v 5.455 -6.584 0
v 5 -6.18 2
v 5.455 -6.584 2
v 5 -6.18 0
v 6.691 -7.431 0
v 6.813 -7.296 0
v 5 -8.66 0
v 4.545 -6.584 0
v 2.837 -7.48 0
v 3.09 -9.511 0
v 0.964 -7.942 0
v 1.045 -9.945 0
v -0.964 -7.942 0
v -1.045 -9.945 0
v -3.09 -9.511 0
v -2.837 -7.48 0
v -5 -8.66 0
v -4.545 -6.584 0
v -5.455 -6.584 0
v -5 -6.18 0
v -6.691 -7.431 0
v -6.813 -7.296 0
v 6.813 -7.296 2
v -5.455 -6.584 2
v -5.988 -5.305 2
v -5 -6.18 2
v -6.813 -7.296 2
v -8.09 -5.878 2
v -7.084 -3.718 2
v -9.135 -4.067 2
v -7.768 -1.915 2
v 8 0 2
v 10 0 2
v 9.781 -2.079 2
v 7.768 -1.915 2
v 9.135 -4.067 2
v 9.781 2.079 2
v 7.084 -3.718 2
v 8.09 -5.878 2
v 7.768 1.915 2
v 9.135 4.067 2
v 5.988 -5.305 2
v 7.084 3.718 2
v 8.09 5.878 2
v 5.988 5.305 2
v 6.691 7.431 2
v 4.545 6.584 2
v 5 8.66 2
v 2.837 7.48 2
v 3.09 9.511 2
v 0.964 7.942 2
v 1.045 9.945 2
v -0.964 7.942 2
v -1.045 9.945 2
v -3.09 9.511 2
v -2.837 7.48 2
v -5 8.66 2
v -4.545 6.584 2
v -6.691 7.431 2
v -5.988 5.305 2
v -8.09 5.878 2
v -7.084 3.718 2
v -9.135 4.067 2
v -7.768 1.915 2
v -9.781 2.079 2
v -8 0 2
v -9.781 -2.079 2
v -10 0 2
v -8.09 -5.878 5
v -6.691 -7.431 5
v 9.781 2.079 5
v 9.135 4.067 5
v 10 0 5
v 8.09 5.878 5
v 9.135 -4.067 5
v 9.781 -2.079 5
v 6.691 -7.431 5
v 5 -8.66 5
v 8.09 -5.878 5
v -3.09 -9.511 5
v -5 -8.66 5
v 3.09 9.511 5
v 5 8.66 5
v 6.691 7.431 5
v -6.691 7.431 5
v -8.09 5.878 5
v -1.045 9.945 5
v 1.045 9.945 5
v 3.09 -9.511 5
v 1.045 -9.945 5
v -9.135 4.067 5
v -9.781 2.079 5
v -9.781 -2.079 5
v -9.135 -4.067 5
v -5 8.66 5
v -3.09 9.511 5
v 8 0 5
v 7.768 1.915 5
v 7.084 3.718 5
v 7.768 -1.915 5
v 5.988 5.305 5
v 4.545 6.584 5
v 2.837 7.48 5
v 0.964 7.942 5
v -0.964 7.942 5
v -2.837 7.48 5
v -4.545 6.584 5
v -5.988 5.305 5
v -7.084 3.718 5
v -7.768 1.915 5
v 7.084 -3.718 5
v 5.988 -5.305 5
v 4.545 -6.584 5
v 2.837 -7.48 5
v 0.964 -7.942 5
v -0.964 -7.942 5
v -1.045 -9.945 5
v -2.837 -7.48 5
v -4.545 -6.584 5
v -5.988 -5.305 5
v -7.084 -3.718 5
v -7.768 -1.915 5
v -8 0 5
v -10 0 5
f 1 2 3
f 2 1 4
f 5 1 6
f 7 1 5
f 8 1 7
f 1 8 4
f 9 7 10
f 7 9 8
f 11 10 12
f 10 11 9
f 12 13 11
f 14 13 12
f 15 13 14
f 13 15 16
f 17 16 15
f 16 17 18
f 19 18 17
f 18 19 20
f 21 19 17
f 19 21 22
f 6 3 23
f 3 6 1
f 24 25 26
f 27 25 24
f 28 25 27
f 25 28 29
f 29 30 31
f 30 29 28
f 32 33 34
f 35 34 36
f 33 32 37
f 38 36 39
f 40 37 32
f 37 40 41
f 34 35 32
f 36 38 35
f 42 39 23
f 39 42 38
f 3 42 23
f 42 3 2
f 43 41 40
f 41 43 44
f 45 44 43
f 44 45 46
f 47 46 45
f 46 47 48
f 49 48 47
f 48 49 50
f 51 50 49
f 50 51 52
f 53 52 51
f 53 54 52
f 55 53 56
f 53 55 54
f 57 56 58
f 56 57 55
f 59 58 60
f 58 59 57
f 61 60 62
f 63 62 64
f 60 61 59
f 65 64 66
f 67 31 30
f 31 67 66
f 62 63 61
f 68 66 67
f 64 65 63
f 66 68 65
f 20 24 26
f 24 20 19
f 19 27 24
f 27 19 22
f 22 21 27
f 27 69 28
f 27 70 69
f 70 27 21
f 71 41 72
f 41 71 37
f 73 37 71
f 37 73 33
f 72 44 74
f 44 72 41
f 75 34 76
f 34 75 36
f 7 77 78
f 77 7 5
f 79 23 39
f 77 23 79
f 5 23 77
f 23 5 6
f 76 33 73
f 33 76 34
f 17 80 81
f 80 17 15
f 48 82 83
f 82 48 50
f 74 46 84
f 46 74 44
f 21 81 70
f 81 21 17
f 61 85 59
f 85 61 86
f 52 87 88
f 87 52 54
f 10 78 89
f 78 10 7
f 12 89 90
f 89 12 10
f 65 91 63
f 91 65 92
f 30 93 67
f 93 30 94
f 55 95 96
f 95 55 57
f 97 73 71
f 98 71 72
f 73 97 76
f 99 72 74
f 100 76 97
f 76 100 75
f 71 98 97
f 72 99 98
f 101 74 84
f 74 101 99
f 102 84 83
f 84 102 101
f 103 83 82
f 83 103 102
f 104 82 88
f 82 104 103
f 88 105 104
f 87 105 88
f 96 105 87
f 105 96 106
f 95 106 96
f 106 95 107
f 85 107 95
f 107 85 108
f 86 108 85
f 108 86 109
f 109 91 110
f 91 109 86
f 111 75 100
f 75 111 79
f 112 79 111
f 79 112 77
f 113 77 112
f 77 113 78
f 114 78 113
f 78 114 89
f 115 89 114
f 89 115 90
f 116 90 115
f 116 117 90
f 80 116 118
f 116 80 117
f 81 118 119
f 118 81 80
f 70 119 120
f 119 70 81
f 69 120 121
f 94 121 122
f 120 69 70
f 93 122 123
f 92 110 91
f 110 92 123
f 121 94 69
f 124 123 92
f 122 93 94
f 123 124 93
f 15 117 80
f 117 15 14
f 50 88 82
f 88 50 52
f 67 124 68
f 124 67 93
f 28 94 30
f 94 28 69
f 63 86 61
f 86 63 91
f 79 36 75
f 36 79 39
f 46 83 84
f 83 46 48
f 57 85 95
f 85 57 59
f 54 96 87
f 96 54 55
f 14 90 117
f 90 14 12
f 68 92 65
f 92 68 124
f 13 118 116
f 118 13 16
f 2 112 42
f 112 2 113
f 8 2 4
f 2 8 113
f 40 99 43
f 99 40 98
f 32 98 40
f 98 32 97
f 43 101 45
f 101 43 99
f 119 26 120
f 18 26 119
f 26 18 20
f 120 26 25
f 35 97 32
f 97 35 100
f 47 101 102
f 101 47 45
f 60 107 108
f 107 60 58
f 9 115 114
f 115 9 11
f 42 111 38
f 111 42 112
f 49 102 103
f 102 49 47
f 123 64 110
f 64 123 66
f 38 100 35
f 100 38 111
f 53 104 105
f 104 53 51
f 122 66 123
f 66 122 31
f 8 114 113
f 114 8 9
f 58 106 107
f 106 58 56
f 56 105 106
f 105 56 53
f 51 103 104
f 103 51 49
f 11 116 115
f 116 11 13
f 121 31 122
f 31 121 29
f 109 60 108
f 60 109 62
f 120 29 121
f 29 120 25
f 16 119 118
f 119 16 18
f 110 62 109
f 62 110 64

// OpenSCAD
// Nut parameters
outer_diameter = 20;
inner_diameter = 16;
height = 5;
thread_depth = 2;
thread_pitch = 1.75;

difference() {
  cylinder(h = height, r = outer_diameter / 2, center = false);
  cylinder(h = height + 0.1, r = inner_diameter / 2, center = false);

  for (i = [0:50:100]) {
    rotate([0, 0, i * 180 / 100]) {
      translate([outer_diameter / 2, 0, 0]) {
        linear_extrude(height = thread_depth, convexity = 10) {
          circle(r = inner_diameter / 2);
        }
      }
    }
  }
}
